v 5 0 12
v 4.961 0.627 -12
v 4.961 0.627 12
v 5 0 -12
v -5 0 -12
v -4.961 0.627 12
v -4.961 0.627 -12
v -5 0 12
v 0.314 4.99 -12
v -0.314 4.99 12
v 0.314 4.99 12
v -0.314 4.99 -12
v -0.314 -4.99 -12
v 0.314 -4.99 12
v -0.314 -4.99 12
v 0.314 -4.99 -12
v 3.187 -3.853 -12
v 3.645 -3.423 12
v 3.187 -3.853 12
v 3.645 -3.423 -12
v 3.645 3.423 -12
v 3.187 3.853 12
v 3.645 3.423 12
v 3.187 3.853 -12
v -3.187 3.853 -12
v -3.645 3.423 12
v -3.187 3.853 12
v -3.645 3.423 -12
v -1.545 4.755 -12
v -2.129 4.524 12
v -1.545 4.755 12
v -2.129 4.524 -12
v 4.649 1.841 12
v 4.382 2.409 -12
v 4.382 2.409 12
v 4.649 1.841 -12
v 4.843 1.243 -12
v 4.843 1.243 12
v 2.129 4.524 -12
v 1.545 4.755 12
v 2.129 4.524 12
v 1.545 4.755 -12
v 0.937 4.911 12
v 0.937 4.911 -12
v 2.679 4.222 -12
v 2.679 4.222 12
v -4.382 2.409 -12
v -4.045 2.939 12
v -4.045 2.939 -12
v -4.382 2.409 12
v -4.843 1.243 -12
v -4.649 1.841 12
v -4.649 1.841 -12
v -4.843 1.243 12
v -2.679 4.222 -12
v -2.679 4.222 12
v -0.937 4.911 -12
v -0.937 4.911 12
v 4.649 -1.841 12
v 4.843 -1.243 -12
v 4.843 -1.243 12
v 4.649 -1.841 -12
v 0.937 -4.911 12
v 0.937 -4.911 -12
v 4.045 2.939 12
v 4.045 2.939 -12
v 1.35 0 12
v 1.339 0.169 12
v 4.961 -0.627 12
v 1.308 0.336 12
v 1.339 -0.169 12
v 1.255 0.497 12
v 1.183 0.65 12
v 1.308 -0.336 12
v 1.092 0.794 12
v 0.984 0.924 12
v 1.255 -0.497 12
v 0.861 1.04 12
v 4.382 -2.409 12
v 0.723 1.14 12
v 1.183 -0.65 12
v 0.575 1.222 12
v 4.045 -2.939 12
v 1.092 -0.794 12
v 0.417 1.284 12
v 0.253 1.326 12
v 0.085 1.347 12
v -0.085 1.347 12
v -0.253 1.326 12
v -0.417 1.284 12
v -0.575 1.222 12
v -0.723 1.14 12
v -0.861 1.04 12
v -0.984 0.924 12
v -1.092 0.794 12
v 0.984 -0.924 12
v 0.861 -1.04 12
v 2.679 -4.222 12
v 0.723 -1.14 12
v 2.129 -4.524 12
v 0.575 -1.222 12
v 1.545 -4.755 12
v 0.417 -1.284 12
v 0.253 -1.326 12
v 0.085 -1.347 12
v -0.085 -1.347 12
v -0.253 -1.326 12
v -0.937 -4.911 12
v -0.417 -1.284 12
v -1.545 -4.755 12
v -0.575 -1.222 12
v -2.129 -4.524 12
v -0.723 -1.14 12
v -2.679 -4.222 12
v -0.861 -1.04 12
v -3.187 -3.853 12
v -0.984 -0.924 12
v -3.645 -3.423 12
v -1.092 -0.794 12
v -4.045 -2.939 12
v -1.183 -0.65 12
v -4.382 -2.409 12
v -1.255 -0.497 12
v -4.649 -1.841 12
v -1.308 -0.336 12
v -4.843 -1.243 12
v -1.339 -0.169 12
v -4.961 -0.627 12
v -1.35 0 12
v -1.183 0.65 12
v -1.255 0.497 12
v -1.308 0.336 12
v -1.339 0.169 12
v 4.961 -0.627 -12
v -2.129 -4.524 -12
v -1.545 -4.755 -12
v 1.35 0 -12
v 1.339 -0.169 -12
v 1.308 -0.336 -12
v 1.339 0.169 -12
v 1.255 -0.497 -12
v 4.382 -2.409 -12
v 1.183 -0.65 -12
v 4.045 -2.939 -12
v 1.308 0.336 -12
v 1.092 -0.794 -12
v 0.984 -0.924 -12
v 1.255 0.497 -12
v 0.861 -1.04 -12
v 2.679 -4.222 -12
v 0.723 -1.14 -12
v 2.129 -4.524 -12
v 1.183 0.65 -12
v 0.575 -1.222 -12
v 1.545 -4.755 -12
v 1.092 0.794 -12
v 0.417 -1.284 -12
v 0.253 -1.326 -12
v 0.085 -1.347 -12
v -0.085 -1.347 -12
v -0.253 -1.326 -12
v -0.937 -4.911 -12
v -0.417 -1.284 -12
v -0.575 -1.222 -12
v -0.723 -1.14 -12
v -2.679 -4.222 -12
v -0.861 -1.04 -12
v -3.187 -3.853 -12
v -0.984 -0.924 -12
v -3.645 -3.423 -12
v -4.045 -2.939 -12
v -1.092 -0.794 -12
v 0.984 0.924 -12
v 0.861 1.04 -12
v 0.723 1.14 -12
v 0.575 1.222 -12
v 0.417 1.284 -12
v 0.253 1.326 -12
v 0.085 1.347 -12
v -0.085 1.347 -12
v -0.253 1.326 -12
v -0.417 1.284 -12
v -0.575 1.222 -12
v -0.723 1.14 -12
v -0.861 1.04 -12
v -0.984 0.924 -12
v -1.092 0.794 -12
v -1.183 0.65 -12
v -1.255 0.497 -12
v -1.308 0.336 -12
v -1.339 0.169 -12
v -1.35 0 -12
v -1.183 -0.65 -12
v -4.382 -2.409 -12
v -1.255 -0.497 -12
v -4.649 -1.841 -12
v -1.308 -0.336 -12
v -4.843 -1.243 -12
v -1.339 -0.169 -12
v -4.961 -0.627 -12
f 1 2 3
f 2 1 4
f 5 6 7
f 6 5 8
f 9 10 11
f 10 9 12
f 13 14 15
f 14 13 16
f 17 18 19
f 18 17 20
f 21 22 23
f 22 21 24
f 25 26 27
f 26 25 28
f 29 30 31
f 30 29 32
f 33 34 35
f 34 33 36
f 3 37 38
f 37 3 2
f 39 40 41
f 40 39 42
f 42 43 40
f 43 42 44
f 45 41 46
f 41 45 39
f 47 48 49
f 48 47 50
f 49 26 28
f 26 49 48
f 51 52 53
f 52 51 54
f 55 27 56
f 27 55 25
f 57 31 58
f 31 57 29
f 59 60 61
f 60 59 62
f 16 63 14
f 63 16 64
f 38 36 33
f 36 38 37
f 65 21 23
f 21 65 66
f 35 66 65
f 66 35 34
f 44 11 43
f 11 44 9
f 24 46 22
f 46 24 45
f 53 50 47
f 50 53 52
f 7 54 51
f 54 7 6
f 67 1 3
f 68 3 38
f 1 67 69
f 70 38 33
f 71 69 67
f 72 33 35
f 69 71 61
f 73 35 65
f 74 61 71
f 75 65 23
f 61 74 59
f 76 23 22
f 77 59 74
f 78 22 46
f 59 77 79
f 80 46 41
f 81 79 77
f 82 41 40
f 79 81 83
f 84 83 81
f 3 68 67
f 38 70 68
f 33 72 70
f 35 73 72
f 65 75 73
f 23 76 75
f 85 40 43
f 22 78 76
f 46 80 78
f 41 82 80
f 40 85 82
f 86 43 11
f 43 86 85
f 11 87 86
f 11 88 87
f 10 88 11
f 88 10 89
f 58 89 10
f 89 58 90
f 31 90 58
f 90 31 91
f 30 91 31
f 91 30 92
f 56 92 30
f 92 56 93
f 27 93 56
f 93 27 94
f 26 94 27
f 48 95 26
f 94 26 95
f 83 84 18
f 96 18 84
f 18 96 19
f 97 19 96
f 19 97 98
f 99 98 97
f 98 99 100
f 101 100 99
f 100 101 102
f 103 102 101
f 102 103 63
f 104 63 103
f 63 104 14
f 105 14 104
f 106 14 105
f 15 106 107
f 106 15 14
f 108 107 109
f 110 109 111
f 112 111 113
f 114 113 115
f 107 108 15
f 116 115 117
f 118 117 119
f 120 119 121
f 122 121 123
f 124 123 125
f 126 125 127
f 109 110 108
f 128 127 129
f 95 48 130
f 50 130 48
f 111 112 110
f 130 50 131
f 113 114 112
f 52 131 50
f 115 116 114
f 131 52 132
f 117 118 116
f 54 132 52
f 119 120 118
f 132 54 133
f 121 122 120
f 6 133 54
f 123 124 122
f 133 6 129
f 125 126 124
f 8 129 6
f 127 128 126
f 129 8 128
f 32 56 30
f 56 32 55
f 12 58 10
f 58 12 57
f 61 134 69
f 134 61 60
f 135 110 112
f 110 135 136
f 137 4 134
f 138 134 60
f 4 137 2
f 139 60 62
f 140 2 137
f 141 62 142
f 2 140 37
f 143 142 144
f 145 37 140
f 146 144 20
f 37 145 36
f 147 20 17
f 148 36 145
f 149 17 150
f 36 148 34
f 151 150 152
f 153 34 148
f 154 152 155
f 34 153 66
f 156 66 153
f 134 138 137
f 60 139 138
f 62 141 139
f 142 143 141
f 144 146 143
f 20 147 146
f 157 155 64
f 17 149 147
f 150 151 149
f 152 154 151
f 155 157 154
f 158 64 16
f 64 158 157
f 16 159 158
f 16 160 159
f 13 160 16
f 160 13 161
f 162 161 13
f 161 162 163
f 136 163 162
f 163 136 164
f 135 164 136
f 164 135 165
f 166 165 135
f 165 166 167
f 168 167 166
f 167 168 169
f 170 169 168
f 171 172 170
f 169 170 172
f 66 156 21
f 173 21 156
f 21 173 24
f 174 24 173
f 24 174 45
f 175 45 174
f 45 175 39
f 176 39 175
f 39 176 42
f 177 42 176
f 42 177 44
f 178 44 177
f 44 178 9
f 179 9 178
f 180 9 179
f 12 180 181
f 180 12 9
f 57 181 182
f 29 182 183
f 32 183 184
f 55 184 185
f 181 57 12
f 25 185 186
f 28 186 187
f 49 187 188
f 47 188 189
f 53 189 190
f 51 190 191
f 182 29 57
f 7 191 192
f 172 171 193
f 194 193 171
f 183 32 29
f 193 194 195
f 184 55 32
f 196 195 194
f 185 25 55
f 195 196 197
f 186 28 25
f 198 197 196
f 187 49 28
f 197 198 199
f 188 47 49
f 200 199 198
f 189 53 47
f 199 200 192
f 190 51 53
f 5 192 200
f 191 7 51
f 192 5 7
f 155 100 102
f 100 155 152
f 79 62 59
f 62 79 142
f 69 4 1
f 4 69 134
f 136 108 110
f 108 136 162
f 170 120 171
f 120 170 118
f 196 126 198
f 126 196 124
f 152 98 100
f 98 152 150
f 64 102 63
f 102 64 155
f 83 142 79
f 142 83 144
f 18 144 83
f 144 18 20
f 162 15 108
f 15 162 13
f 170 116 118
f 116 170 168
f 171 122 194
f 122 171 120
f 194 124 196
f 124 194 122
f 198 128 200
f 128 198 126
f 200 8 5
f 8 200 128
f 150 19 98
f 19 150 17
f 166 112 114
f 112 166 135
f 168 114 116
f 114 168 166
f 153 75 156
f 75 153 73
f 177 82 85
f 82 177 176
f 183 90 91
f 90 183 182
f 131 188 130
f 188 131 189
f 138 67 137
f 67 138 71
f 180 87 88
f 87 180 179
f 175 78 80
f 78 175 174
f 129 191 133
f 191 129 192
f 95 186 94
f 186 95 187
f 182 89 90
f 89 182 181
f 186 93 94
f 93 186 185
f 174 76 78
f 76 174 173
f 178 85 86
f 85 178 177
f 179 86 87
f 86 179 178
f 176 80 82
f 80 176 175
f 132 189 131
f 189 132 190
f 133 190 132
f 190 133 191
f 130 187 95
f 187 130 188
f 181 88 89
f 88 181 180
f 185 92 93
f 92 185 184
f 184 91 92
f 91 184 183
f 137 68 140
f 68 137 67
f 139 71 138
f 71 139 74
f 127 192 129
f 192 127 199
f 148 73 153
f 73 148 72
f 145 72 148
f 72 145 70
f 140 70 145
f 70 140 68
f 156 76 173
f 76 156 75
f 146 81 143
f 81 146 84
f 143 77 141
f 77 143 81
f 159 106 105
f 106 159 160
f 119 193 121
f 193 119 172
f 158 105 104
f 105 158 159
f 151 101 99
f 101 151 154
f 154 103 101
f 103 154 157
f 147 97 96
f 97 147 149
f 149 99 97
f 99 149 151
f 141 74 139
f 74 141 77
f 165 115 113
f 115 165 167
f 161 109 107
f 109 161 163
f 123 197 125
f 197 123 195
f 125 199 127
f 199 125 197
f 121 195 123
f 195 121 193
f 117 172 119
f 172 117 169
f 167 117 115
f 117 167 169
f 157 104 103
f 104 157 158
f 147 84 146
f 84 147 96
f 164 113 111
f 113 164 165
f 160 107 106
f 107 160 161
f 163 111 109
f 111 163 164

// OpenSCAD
$fn = 50;


difference() {
	union() {
		translate(v = [0, 0, -12.0000000000]) {
			cylinder(h = 24, r = 5.0000000000);
		}
	}
	union() {
		translate(v = [0, 0, -100.0000000000]) {
			cylinder(h = 200, r = 1.3500000000);
		}
	}
}
